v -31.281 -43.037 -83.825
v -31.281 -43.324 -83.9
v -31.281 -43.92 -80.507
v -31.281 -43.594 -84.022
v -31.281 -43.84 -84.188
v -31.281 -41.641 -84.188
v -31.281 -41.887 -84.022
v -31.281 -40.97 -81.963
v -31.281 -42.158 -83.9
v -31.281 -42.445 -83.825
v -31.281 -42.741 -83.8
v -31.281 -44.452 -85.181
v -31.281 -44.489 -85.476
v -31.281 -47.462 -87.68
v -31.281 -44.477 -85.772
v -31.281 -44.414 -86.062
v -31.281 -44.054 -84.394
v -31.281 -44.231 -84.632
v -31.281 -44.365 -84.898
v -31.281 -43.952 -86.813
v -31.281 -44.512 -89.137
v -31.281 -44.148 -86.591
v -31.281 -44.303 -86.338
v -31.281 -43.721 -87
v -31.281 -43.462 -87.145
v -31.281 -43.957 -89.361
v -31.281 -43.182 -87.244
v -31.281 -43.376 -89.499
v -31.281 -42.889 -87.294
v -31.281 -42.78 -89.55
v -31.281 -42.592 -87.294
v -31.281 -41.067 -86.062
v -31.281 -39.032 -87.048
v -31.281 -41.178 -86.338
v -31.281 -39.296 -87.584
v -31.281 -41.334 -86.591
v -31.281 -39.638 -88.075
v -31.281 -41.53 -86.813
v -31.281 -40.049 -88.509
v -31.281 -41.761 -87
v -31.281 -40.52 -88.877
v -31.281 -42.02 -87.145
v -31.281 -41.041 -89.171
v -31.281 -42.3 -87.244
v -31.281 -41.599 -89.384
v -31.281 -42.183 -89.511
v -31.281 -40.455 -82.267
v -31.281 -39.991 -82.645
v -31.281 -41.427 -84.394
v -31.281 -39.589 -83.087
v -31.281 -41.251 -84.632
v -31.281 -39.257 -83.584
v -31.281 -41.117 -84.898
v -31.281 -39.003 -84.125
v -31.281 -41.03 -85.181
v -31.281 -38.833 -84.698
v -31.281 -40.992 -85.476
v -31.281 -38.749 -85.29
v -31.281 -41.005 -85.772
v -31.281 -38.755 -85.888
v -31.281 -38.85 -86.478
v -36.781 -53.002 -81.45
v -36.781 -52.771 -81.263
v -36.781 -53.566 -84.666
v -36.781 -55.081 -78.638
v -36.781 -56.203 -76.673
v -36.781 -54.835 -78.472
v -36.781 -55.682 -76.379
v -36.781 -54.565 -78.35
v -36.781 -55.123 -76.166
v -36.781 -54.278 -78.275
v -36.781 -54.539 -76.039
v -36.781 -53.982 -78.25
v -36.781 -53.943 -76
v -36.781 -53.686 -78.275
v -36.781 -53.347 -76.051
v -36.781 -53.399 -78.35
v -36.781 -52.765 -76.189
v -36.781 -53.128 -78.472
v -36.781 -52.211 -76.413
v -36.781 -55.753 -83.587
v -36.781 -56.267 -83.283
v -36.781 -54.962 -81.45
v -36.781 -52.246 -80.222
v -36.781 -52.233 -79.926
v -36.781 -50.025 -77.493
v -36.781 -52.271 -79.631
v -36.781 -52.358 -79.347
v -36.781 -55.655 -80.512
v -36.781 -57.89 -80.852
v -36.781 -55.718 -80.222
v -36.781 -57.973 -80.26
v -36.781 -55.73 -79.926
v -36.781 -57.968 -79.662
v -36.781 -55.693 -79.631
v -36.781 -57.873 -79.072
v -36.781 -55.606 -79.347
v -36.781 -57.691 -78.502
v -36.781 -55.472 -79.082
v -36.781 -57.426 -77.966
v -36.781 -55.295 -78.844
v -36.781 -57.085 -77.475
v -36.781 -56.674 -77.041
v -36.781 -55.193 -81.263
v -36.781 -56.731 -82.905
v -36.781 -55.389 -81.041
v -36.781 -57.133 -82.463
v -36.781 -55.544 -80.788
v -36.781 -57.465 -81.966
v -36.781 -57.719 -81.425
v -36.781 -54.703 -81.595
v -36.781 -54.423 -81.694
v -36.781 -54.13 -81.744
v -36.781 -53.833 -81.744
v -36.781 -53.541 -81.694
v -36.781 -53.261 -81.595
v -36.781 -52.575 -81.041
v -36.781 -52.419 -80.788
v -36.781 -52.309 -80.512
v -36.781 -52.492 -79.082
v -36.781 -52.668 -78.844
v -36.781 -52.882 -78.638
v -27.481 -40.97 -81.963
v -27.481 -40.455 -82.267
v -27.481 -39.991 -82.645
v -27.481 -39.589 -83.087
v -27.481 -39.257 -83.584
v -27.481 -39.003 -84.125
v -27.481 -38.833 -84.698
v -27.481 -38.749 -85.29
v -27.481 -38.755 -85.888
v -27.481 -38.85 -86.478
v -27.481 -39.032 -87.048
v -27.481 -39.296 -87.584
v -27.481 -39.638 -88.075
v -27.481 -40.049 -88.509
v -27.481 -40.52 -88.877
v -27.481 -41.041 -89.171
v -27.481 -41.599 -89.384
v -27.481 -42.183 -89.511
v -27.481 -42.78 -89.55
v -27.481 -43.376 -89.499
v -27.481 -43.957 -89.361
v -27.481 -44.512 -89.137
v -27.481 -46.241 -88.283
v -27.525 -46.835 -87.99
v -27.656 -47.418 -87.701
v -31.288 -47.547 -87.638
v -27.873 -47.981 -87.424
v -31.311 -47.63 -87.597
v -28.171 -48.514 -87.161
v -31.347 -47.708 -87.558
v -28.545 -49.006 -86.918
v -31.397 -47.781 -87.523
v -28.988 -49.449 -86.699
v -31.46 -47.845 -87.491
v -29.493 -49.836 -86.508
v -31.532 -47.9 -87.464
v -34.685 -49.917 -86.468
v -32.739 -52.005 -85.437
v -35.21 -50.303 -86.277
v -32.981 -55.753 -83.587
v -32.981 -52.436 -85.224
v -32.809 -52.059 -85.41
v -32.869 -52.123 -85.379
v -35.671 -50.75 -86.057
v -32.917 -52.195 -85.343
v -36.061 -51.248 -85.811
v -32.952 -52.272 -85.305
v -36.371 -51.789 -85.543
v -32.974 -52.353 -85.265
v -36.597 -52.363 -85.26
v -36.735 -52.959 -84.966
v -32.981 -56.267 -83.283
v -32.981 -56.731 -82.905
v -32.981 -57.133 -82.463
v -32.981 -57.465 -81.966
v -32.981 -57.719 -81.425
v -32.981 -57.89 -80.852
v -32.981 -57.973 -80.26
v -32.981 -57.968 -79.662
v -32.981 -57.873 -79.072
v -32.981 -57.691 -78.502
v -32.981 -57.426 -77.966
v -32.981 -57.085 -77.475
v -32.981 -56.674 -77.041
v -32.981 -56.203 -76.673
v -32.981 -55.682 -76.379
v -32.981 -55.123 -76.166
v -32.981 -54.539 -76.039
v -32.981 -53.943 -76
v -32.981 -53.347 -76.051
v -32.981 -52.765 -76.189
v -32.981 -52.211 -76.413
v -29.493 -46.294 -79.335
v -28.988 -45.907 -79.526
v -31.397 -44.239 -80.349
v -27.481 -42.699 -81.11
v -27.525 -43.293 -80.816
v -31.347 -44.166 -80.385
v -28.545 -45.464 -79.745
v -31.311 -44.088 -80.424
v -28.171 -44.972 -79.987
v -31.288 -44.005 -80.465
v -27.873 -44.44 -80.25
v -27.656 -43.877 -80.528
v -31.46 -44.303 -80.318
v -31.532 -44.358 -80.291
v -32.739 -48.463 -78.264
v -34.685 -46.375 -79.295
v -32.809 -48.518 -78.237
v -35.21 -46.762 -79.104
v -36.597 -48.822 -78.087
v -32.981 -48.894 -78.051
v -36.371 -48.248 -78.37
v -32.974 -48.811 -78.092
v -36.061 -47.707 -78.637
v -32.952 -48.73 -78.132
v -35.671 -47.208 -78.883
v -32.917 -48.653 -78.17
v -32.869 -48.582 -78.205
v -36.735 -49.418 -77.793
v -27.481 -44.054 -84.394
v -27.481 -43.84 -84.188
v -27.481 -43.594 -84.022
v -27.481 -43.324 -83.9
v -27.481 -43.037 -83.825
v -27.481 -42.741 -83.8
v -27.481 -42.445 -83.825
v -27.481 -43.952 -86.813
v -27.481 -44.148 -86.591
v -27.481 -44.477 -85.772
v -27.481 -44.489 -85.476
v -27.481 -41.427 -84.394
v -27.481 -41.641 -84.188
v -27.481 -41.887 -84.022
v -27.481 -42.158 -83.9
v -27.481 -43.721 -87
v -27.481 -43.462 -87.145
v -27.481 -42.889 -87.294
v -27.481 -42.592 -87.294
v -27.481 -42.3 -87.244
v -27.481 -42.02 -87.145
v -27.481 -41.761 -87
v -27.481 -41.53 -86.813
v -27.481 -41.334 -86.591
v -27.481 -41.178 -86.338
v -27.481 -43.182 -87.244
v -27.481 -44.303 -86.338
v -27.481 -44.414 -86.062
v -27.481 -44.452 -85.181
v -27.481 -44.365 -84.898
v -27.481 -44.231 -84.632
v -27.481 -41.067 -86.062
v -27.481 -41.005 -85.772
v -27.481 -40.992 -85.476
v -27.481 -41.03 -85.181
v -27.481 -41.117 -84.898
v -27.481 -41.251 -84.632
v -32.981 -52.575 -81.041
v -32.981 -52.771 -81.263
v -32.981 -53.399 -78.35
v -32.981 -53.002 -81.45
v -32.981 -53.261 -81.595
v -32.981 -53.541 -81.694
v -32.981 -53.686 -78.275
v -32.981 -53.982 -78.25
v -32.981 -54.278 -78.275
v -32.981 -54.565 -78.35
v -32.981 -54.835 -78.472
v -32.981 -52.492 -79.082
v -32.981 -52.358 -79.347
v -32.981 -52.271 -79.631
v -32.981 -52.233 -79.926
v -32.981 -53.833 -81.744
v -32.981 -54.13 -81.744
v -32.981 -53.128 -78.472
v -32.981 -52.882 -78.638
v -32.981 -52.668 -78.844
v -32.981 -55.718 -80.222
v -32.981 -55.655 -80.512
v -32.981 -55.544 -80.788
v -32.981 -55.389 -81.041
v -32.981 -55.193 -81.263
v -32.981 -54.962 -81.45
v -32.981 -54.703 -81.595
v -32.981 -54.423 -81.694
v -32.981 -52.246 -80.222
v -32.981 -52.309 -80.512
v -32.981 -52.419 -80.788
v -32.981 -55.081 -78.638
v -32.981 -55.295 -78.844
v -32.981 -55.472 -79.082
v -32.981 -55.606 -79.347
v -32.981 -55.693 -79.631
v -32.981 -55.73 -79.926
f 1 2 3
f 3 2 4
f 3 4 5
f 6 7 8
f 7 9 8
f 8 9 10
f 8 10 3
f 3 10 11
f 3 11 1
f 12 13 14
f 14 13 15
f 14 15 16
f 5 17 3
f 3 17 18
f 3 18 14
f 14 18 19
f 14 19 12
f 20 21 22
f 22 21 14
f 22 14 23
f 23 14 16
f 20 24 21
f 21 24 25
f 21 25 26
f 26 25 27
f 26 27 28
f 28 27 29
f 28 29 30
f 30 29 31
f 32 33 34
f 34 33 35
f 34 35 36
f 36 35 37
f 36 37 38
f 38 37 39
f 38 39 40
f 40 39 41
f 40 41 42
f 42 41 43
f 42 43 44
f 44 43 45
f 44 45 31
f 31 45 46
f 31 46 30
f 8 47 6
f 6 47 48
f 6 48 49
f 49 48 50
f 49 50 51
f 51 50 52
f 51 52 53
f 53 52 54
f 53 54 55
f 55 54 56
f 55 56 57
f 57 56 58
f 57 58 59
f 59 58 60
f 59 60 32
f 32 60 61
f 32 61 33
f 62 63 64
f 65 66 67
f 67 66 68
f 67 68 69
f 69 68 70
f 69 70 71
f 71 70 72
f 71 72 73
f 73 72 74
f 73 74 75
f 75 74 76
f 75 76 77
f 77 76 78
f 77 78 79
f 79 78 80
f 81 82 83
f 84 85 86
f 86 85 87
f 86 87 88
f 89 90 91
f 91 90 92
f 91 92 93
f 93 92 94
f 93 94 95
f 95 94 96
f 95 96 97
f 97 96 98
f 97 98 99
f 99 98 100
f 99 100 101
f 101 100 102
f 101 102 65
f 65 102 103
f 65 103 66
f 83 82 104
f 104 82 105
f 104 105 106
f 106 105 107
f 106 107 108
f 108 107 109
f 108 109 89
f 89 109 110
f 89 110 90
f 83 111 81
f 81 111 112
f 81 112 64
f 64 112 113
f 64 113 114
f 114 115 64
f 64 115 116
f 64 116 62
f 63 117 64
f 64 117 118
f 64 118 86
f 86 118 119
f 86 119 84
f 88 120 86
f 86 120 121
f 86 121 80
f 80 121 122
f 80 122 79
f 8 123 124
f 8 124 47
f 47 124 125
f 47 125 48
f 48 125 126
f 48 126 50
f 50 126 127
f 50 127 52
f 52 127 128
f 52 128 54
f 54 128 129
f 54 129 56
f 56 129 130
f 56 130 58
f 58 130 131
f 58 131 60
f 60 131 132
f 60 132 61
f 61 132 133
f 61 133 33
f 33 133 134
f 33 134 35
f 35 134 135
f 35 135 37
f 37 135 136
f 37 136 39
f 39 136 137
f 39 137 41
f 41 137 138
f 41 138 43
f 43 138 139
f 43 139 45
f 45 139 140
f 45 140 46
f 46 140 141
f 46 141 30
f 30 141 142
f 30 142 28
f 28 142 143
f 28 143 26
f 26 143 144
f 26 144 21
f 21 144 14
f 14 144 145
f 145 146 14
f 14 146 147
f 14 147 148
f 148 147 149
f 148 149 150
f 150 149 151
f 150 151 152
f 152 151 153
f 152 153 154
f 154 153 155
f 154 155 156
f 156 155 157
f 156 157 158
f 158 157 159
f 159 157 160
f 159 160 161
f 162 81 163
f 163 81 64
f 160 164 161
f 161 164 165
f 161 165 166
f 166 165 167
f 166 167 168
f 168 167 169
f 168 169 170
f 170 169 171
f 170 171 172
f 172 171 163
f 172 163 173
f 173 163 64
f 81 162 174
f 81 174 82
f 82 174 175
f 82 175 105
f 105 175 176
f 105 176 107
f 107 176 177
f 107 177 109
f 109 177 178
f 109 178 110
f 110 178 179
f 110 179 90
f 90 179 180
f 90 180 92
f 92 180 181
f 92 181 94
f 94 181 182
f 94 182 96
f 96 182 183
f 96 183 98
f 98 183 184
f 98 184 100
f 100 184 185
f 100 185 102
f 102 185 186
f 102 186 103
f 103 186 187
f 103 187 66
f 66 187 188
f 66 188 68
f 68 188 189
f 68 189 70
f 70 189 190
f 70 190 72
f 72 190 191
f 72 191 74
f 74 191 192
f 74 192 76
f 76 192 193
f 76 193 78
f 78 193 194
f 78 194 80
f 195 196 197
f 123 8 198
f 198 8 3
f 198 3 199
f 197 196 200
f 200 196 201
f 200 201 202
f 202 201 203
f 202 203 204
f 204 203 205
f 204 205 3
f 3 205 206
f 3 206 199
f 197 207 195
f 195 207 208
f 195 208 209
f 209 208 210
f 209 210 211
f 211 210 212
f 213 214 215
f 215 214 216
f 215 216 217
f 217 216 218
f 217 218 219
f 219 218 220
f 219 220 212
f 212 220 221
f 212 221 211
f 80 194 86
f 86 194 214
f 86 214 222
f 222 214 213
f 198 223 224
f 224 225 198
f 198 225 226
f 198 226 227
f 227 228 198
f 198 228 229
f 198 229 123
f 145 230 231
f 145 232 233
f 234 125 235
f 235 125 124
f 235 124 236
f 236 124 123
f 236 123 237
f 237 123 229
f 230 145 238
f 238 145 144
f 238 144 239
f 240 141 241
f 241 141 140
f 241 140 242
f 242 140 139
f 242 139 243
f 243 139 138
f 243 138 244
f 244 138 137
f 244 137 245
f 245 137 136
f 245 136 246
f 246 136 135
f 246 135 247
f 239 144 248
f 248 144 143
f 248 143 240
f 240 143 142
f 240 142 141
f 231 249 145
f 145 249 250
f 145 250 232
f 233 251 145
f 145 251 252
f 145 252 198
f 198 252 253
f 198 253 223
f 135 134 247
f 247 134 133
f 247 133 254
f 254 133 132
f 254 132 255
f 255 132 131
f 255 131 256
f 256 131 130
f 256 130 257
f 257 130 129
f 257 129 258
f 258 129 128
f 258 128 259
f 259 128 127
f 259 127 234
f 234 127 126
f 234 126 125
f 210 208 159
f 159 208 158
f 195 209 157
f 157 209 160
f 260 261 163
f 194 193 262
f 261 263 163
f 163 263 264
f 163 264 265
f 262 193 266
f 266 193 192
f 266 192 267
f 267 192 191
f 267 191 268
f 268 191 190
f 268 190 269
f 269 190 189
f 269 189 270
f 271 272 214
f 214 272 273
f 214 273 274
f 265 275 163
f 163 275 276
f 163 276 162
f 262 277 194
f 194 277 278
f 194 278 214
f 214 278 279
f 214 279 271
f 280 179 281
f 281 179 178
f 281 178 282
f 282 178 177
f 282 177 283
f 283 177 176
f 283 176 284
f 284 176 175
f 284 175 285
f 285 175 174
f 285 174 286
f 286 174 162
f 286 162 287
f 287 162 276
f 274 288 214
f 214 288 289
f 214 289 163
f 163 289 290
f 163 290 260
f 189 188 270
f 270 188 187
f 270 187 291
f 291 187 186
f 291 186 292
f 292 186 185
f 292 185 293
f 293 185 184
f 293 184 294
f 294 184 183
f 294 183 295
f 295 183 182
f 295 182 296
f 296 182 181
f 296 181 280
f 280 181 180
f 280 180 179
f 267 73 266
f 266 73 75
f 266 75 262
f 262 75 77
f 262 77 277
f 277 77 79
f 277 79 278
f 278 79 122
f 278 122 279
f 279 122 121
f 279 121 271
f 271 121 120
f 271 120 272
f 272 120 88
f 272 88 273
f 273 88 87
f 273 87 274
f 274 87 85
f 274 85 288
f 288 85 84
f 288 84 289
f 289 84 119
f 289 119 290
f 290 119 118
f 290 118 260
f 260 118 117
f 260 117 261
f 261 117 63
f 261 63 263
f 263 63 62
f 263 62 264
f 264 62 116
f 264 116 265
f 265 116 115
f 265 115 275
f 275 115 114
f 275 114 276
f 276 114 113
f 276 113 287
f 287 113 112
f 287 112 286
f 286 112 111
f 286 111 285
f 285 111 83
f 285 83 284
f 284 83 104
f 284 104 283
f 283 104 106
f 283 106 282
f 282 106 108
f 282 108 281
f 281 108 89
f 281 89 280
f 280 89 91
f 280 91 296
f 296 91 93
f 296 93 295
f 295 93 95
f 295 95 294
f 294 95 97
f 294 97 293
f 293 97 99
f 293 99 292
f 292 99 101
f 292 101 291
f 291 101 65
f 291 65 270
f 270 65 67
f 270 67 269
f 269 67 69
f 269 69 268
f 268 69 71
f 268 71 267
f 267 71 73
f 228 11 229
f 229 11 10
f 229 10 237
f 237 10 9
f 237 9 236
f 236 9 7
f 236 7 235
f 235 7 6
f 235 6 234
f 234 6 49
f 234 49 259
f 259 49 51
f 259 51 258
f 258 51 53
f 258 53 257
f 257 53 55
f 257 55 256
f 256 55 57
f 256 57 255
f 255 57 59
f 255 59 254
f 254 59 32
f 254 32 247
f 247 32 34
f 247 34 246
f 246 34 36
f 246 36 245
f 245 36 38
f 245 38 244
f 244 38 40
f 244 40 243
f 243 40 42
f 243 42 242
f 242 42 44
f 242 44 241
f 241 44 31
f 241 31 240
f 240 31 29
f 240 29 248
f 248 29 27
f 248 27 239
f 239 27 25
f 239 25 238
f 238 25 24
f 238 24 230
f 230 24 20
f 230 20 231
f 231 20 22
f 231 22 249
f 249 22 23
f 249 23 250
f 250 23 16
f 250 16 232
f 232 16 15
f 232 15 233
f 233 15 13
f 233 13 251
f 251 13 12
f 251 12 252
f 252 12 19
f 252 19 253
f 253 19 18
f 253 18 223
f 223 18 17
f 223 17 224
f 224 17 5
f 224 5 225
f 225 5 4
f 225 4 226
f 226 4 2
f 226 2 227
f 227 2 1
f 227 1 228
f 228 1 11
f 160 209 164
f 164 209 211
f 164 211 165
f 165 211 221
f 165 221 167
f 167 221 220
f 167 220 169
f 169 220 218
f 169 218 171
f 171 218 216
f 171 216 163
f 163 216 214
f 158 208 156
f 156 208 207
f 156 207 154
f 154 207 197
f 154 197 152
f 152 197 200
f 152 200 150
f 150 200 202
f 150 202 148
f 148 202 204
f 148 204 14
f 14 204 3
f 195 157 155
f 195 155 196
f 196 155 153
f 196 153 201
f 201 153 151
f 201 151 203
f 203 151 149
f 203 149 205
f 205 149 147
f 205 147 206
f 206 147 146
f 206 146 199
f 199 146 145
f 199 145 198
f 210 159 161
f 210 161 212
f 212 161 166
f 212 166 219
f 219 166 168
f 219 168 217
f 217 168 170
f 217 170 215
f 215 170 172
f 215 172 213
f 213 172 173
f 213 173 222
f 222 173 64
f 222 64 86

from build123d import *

# Parameters (mm, degrees)
BOSS_EXTRUDE1_DEPTH = 9.3
CUT_EXTRUDE1_DEPTH  = 42.511134509
CUT_EXTRUDE2_DEPTH  = 42.511134509
HOLE1_D             = 3.5
HOLE2_D             = 3.5
FILLET1_R           = 0.6
FILLET2_R           = 5


with BuildPart() as part:
    # Sketch1 → Boss-Extrude1 (new body)
    with BuildSketch(Plane(origin=(-27.480838388, 0, 0), x_dir=(0, 0, -1), z_dir=(1, 0, 0))):
        with BuildLine():
            Line((81.963336874, -40.96995038), (76.413336874, -52.210980091))
            ThreePointArc((76.413336874, -52.210980091), (78.229167535, -57.568475682), (83.586663126, -55.752645021))
            Line((83.586663126, -55.752645021), (89.136663126, -44.51161531))
            ThreePointArc((89.136663126, -44.51161531), (87.320832465, -39.154119719), (81.963336874, -40.96995038))
        make_face()
    extrude(amount=-BOSS_EXTRUDE1_DEPTH)

    # Sketch2 → Cut-Extrude1 (cut, through all)
    with BuildSketch(Plane(origin=(0, -44.107651135, -89.336111151), x_dir=(-1, 0, 0), z_dir=(0, -0.4427081162196108, -0.8966657815670697))):
        Polygon((31.280838388, 3.94822391), (31.280838388, -4.049700743), (36.780838388, -7.974283766), (36.780838388, 3.94822391), align=None)
    extrude(amount=-CUT_EXTRUDE1_DEPTH, mode=Mode.SUBTRACT)

    # Sketch3 → Cut-Extrude2 (cut, through all)
    with BuildSketch(Plane(origin=(0, -44.107651135, -89.336111151), x_dir=(-1, 0, 0), z_dir=(0, -0.4427081162196108, -0.8966657815670697))):
        Polygon((32.980838388, -17.88847919), (32.980838388, -8.986994848), (27.480838388, -4.88847919), (27.480838388, -17.88847919), align=None)
    extrude(amount=-CUT_EXTRUDE2_DEPTH, mode=Mode.SUBTRACT)

    # Hole1 (through all)
    with Locations(Plane.ZY.offset(36.780838388)):
        with Locations((-80, -53.981812556)):
            Hole(HOLE1_D / 2)

    # Hole2 (through all)
    with Locations(Plane.ZY.offset(31.280838388)):
        with Locations((-85.55, -42.740782845)):
            Hole(HOLE2_D / 2)

    # Fillet1
    fillet1_edges = [part.edges().sort_by_distance(p)[0] for p in [
        (-31.280838388, -45.968046752, -83.956612638),
        (-32.980838388, -50.395149429, -81.770832465),
    ]]
    fillet(fillet1_edges, radius=FILLET1_R)

    # Fillet2
    fillet2_edges = [part.edges().sort_by_distance(p)[0] for p in [
        (-36.780838388, -49.487086055, -82.21916788),
        (-27.480838388, -46.720150684, -83.585278611),
    ]]
    fillet(fillet2_edges, radius=FILLET2_R)


solid = part.part
